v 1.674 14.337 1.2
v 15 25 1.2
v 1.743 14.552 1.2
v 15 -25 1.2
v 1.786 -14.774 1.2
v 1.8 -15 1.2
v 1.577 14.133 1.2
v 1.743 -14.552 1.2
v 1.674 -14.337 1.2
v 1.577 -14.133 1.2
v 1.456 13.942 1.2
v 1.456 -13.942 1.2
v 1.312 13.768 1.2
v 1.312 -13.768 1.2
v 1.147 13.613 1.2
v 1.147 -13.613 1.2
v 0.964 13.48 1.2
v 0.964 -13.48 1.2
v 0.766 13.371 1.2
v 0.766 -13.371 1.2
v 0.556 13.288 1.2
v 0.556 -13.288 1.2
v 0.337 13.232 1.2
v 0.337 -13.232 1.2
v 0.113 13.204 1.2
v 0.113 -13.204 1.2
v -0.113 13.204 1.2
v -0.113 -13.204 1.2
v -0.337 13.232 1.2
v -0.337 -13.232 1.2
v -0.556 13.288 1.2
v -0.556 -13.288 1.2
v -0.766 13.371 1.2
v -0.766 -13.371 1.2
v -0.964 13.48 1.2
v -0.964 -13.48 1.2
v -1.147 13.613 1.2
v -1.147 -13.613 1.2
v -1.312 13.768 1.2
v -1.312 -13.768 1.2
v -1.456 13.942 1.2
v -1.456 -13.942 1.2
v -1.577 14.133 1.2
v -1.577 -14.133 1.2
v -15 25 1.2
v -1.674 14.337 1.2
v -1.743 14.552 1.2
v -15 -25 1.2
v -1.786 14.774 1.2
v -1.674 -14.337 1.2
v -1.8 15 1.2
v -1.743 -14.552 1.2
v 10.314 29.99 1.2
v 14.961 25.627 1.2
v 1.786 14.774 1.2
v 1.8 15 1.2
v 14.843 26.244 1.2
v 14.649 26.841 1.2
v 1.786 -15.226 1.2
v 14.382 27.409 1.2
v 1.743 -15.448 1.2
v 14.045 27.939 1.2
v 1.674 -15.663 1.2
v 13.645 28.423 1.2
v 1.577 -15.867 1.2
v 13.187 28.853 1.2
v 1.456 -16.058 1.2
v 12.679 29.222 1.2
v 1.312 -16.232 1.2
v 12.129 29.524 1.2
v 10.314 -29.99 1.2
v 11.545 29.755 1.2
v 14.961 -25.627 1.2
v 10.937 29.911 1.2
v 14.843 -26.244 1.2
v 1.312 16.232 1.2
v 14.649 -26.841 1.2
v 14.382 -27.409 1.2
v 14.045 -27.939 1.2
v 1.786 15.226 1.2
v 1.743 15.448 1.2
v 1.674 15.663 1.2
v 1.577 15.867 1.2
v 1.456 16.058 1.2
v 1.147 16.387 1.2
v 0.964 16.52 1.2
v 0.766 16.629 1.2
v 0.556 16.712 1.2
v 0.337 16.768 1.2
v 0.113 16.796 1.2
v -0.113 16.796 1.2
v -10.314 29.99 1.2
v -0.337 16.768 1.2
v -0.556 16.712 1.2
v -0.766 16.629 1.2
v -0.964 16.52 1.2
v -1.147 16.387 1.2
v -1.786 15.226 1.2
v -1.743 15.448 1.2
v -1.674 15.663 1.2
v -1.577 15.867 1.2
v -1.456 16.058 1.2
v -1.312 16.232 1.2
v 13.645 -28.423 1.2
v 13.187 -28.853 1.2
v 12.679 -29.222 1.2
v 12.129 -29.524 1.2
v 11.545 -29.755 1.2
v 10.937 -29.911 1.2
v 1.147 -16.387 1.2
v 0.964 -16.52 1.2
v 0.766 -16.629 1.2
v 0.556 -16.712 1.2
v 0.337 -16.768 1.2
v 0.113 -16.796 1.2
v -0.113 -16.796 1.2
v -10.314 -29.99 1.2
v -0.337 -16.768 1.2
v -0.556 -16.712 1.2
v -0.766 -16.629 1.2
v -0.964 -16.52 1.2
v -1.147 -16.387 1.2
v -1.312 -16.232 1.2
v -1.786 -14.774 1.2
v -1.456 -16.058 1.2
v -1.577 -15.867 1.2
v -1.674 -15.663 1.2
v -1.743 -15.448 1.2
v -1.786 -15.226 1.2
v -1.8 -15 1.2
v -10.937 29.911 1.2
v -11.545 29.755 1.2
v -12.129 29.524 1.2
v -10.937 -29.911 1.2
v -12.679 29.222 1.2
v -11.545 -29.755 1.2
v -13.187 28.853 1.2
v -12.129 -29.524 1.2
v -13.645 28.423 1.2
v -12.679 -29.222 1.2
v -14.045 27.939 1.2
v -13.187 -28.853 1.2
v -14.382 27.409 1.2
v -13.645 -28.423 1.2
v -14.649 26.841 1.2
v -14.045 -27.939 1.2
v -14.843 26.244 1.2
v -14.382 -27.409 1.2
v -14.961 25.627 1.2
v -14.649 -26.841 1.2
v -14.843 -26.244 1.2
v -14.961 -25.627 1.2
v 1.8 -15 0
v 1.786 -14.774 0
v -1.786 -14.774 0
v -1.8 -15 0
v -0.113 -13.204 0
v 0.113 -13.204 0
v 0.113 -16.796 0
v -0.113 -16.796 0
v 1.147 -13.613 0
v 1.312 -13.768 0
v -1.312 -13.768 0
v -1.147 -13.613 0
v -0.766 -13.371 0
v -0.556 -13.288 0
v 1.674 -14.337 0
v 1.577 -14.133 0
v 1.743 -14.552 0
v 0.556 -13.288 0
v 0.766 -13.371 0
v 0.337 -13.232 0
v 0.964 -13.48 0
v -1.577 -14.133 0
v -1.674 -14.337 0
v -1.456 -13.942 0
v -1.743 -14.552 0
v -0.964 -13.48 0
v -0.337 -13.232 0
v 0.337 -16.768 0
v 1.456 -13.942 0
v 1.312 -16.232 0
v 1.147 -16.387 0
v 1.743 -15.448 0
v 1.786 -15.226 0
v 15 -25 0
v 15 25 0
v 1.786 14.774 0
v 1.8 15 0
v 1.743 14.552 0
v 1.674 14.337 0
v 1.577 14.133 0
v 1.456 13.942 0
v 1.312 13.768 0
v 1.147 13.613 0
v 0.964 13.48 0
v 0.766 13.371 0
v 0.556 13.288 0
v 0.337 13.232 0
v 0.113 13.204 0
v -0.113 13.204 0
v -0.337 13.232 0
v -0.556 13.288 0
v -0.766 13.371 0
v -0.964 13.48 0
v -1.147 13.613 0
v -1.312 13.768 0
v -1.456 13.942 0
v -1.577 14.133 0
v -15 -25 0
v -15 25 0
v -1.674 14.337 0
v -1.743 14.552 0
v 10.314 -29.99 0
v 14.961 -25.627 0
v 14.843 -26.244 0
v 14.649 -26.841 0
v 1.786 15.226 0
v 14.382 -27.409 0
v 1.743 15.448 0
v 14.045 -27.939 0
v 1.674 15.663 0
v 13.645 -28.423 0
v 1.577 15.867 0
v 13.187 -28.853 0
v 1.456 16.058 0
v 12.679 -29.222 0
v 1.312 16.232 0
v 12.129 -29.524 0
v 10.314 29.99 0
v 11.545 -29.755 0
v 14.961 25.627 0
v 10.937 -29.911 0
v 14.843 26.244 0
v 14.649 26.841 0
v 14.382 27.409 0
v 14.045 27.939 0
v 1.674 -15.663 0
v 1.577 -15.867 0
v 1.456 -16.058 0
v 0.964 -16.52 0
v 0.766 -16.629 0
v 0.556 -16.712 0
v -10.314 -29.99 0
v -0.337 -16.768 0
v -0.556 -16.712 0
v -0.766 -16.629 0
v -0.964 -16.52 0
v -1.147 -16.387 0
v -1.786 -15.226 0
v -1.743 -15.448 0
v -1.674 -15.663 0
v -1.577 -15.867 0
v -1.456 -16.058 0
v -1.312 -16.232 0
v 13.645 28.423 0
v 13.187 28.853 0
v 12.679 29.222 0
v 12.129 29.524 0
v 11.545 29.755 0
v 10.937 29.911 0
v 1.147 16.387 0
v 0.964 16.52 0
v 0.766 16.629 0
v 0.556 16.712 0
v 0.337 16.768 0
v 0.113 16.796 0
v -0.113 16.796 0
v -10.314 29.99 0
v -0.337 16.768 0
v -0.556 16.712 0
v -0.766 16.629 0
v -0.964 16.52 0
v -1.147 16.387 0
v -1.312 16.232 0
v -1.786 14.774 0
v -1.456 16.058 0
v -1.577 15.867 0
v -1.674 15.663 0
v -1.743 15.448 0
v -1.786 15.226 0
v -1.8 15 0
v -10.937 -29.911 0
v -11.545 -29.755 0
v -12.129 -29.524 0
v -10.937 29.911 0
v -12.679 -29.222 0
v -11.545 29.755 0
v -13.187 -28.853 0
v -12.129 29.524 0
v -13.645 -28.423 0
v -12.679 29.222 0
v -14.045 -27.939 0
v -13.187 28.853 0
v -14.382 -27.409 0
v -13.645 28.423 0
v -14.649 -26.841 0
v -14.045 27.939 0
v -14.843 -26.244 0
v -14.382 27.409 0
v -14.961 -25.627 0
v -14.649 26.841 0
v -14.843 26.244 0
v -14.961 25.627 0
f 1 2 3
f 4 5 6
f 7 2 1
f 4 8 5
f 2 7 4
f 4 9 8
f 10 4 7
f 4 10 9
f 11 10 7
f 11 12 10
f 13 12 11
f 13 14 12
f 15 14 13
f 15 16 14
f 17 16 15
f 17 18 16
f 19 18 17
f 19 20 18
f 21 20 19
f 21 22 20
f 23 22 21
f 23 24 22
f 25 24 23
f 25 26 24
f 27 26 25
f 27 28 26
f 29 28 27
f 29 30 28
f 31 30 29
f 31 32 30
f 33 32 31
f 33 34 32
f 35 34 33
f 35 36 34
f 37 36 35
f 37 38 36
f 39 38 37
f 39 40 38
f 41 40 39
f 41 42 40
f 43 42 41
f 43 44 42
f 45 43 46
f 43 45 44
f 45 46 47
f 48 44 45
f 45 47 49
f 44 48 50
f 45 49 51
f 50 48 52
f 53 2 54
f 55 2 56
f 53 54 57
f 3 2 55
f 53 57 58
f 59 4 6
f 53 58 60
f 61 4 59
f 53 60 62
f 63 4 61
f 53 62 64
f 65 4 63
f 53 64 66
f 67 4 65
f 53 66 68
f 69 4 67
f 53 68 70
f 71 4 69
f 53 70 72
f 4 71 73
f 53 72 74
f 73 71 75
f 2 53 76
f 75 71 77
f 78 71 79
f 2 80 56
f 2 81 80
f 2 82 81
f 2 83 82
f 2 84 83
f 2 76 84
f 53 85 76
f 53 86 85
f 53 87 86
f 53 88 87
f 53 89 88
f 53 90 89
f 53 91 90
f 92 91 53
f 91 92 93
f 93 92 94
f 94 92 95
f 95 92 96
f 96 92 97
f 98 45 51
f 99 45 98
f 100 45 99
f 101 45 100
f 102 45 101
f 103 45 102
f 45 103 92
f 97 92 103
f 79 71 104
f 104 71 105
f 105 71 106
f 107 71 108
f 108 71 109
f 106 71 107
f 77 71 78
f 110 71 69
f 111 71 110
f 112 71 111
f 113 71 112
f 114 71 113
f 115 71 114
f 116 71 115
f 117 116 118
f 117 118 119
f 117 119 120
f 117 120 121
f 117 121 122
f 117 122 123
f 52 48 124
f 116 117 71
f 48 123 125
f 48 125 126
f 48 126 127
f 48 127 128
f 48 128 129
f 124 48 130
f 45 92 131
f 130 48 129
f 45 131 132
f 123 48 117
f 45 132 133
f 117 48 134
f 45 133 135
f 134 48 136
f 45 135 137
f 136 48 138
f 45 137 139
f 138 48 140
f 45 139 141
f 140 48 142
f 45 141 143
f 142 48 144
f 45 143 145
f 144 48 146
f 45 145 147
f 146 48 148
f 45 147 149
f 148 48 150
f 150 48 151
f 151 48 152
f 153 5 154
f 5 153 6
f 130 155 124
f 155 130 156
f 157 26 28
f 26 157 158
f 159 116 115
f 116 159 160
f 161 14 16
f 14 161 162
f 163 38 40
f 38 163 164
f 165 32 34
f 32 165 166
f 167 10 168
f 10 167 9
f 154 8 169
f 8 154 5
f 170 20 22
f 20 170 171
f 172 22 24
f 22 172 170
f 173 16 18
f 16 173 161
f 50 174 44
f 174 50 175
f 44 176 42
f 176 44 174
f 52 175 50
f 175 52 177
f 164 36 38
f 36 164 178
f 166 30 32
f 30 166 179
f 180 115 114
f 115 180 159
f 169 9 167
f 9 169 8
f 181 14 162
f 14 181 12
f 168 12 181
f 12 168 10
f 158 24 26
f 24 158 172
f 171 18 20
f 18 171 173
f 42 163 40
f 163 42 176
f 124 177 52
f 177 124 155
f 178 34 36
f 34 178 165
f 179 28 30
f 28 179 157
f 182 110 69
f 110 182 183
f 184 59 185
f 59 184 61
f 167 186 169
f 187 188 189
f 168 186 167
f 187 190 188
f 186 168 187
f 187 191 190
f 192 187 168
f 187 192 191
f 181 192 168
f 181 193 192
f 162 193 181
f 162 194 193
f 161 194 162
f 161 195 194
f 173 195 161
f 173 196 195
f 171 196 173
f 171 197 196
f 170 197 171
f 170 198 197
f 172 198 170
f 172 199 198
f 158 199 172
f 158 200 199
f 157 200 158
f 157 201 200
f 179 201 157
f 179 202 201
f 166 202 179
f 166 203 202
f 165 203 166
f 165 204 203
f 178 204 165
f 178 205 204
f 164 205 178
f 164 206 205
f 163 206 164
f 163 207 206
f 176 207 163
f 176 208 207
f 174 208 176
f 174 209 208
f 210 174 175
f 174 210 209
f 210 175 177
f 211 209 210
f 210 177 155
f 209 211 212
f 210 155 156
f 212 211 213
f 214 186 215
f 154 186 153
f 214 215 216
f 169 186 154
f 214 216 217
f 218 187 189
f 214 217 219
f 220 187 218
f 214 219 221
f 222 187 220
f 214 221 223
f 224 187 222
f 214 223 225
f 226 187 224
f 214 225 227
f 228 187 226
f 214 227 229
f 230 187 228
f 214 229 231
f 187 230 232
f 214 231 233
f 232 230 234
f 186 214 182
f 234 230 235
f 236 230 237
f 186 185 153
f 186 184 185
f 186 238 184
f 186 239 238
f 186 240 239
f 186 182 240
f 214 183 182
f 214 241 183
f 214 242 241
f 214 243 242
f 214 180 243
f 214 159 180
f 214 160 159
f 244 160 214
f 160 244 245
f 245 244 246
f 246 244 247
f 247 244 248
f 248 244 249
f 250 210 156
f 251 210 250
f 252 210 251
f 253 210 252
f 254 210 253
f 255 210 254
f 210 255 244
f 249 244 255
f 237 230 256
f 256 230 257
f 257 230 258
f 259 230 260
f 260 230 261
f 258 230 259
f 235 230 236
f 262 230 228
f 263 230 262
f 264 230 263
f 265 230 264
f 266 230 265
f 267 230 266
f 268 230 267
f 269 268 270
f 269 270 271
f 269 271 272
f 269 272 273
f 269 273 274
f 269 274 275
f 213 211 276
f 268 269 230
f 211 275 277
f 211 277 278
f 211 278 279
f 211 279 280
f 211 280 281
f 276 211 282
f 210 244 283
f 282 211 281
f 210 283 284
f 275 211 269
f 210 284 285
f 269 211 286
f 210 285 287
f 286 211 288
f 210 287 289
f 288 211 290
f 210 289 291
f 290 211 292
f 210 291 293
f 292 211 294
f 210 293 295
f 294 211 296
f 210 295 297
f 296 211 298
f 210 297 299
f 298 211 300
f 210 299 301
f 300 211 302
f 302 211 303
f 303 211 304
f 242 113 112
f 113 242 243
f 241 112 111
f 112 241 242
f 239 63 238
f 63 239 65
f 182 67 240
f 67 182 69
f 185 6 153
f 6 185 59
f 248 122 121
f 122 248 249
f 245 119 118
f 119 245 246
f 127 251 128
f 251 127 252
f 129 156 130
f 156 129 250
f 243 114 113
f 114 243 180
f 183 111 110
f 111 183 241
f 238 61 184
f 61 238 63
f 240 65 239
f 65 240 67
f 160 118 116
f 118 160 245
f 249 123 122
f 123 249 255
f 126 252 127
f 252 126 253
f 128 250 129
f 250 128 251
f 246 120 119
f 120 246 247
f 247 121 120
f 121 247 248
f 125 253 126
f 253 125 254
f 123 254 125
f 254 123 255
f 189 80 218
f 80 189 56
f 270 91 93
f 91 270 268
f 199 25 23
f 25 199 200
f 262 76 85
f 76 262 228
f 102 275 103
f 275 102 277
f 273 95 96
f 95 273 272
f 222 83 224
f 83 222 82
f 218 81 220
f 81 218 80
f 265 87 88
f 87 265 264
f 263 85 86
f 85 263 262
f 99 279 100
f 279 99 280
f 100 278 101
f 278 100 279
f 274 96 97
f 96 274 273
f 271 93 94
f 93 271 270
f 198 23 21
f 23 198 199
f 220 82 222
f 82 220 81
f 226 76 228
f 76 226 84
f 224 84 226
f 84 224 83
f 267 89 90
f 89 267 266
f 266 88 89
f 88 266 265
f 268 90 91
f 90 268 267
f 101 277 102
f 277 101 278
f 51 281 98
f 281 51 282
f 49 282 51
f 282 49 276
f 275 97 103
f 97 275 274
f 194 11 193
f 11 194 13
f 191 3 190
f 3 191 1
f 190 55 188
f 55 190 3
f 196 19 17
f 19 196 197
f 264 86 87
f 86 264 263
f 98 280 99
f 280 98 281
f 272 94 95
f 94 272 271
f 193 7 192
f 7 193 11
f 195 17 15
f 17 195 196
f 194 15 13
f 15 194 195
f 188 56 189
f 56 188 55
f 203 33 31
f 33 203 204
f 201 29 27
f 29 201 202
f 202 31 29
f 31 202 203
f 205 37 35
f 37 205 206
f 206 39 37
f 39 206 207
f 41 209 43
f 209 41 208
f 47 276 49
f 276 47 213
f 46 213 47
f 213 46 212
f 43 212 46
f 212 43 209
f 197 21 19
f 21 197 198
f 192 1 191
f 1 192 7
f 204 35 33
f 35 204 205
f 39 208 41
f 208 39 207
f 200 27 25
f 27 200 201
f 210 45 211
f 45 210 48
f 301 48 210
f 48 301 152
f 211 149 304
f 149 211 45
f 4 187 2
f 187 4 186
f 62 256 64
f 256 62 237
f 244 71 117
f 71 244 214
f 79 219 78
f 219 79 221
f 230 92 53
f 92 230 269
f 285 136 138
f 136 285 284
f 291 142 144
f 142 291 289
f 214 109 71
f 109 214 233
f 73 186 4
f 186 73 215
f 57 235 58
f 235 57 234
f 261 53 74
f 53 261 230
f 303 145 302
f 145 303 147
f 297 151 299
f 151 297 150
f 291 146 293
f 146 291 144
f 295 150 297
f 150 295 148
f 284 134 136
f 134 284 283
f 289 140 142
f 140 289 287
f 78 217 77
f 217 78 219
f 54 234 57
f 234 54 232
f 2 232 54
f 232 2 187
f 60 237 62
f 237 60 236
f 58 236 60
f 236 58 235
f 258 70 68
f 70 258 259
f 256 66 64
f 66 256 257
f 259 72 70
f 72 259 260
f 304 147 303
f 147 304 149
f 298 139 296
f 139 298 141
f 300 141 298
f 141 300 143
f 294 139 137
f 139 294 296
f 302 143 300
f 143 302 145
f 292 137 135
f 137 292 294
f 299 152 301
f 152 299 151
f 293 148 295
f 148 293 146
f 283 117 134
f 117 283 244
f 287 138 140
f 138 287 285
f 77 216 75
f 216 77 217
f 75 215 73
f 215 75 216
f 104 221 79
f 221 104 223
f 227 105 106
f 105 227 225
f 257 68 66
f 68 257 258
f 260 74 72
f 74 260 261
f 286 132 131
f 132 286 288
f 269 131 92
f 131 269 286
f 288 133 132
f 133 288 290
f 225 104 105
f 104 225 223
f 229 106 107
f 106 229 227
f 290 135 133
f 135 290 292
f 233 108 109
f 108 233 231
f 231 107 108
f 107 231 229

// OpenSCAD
$fn = 50;


difference() {
	union() {
		hull() {
			translate(v = [-10.0000000000, 25.0000000000, 0]) {
				cylinder(h = 45, r = 5);
			}
			translate(v = [10.0000000000, 25.0000000000, 0]) {
				cylinder(h = 45, r = 5);
			}
			translate(v = [-10.0000000000, -25.0000000000, 0]) {
				cylinder(h = 45, r = 5);
			}
			translate(v = [10.0000000000, -25.0000000000, 0]) {
				cylinder(h = 45, r = 5);
			}
		}
	}
	union() {
		translate(v = [0, 0, 1.2000000000]) {
			hull() {
				translate(v = [-10.0000000000, 25.0000000000, 0]) {
					cylinder(h = 43.8000000000, r = 3.8000000000);
				}
				translate(v = [10.0000000000, 25.0000000000, 0]) {
					cylinder(h = 43.8000000000, r = 3.8000000000);
				}
				translate(v = [-10.0000000000, -25.0000000000, 0]) {
					cylinder(h = 43.8000000000, r = 3.8000000000);
				}
				translate(v = [10.0000000000, -25.0000000000, 0]) {
					cylinder(h = 43.8000000000, r = 3.8000000000);
				}
			}
		}
		#translate(v = [0.0000000000, -15.0000000000, 0]) {
			cylinder(h = 1.2000000000, r = 1.8000000000);
		}
		#translate(v = [0.0000000000, 15.0000000000, 0]) {
			cylinder(h = 1.2000000000, r = 1.8000000000);
		}
		translate(v = [-250.0000000000, -250.0000000000, 1.2000000000]) {
			cube(size = [500, 500, 500]);
		}
		translate(v = [-250.0000000000, -250.0000000000, 1.2000000000]) {
			cube(size = [500, 500, 500]);
		}
		translate(v = [-250.0000000000, -250.0000000000, 1.2000000000]) {
			cube(size = [500, 500, 500]);
		}
	}
}
